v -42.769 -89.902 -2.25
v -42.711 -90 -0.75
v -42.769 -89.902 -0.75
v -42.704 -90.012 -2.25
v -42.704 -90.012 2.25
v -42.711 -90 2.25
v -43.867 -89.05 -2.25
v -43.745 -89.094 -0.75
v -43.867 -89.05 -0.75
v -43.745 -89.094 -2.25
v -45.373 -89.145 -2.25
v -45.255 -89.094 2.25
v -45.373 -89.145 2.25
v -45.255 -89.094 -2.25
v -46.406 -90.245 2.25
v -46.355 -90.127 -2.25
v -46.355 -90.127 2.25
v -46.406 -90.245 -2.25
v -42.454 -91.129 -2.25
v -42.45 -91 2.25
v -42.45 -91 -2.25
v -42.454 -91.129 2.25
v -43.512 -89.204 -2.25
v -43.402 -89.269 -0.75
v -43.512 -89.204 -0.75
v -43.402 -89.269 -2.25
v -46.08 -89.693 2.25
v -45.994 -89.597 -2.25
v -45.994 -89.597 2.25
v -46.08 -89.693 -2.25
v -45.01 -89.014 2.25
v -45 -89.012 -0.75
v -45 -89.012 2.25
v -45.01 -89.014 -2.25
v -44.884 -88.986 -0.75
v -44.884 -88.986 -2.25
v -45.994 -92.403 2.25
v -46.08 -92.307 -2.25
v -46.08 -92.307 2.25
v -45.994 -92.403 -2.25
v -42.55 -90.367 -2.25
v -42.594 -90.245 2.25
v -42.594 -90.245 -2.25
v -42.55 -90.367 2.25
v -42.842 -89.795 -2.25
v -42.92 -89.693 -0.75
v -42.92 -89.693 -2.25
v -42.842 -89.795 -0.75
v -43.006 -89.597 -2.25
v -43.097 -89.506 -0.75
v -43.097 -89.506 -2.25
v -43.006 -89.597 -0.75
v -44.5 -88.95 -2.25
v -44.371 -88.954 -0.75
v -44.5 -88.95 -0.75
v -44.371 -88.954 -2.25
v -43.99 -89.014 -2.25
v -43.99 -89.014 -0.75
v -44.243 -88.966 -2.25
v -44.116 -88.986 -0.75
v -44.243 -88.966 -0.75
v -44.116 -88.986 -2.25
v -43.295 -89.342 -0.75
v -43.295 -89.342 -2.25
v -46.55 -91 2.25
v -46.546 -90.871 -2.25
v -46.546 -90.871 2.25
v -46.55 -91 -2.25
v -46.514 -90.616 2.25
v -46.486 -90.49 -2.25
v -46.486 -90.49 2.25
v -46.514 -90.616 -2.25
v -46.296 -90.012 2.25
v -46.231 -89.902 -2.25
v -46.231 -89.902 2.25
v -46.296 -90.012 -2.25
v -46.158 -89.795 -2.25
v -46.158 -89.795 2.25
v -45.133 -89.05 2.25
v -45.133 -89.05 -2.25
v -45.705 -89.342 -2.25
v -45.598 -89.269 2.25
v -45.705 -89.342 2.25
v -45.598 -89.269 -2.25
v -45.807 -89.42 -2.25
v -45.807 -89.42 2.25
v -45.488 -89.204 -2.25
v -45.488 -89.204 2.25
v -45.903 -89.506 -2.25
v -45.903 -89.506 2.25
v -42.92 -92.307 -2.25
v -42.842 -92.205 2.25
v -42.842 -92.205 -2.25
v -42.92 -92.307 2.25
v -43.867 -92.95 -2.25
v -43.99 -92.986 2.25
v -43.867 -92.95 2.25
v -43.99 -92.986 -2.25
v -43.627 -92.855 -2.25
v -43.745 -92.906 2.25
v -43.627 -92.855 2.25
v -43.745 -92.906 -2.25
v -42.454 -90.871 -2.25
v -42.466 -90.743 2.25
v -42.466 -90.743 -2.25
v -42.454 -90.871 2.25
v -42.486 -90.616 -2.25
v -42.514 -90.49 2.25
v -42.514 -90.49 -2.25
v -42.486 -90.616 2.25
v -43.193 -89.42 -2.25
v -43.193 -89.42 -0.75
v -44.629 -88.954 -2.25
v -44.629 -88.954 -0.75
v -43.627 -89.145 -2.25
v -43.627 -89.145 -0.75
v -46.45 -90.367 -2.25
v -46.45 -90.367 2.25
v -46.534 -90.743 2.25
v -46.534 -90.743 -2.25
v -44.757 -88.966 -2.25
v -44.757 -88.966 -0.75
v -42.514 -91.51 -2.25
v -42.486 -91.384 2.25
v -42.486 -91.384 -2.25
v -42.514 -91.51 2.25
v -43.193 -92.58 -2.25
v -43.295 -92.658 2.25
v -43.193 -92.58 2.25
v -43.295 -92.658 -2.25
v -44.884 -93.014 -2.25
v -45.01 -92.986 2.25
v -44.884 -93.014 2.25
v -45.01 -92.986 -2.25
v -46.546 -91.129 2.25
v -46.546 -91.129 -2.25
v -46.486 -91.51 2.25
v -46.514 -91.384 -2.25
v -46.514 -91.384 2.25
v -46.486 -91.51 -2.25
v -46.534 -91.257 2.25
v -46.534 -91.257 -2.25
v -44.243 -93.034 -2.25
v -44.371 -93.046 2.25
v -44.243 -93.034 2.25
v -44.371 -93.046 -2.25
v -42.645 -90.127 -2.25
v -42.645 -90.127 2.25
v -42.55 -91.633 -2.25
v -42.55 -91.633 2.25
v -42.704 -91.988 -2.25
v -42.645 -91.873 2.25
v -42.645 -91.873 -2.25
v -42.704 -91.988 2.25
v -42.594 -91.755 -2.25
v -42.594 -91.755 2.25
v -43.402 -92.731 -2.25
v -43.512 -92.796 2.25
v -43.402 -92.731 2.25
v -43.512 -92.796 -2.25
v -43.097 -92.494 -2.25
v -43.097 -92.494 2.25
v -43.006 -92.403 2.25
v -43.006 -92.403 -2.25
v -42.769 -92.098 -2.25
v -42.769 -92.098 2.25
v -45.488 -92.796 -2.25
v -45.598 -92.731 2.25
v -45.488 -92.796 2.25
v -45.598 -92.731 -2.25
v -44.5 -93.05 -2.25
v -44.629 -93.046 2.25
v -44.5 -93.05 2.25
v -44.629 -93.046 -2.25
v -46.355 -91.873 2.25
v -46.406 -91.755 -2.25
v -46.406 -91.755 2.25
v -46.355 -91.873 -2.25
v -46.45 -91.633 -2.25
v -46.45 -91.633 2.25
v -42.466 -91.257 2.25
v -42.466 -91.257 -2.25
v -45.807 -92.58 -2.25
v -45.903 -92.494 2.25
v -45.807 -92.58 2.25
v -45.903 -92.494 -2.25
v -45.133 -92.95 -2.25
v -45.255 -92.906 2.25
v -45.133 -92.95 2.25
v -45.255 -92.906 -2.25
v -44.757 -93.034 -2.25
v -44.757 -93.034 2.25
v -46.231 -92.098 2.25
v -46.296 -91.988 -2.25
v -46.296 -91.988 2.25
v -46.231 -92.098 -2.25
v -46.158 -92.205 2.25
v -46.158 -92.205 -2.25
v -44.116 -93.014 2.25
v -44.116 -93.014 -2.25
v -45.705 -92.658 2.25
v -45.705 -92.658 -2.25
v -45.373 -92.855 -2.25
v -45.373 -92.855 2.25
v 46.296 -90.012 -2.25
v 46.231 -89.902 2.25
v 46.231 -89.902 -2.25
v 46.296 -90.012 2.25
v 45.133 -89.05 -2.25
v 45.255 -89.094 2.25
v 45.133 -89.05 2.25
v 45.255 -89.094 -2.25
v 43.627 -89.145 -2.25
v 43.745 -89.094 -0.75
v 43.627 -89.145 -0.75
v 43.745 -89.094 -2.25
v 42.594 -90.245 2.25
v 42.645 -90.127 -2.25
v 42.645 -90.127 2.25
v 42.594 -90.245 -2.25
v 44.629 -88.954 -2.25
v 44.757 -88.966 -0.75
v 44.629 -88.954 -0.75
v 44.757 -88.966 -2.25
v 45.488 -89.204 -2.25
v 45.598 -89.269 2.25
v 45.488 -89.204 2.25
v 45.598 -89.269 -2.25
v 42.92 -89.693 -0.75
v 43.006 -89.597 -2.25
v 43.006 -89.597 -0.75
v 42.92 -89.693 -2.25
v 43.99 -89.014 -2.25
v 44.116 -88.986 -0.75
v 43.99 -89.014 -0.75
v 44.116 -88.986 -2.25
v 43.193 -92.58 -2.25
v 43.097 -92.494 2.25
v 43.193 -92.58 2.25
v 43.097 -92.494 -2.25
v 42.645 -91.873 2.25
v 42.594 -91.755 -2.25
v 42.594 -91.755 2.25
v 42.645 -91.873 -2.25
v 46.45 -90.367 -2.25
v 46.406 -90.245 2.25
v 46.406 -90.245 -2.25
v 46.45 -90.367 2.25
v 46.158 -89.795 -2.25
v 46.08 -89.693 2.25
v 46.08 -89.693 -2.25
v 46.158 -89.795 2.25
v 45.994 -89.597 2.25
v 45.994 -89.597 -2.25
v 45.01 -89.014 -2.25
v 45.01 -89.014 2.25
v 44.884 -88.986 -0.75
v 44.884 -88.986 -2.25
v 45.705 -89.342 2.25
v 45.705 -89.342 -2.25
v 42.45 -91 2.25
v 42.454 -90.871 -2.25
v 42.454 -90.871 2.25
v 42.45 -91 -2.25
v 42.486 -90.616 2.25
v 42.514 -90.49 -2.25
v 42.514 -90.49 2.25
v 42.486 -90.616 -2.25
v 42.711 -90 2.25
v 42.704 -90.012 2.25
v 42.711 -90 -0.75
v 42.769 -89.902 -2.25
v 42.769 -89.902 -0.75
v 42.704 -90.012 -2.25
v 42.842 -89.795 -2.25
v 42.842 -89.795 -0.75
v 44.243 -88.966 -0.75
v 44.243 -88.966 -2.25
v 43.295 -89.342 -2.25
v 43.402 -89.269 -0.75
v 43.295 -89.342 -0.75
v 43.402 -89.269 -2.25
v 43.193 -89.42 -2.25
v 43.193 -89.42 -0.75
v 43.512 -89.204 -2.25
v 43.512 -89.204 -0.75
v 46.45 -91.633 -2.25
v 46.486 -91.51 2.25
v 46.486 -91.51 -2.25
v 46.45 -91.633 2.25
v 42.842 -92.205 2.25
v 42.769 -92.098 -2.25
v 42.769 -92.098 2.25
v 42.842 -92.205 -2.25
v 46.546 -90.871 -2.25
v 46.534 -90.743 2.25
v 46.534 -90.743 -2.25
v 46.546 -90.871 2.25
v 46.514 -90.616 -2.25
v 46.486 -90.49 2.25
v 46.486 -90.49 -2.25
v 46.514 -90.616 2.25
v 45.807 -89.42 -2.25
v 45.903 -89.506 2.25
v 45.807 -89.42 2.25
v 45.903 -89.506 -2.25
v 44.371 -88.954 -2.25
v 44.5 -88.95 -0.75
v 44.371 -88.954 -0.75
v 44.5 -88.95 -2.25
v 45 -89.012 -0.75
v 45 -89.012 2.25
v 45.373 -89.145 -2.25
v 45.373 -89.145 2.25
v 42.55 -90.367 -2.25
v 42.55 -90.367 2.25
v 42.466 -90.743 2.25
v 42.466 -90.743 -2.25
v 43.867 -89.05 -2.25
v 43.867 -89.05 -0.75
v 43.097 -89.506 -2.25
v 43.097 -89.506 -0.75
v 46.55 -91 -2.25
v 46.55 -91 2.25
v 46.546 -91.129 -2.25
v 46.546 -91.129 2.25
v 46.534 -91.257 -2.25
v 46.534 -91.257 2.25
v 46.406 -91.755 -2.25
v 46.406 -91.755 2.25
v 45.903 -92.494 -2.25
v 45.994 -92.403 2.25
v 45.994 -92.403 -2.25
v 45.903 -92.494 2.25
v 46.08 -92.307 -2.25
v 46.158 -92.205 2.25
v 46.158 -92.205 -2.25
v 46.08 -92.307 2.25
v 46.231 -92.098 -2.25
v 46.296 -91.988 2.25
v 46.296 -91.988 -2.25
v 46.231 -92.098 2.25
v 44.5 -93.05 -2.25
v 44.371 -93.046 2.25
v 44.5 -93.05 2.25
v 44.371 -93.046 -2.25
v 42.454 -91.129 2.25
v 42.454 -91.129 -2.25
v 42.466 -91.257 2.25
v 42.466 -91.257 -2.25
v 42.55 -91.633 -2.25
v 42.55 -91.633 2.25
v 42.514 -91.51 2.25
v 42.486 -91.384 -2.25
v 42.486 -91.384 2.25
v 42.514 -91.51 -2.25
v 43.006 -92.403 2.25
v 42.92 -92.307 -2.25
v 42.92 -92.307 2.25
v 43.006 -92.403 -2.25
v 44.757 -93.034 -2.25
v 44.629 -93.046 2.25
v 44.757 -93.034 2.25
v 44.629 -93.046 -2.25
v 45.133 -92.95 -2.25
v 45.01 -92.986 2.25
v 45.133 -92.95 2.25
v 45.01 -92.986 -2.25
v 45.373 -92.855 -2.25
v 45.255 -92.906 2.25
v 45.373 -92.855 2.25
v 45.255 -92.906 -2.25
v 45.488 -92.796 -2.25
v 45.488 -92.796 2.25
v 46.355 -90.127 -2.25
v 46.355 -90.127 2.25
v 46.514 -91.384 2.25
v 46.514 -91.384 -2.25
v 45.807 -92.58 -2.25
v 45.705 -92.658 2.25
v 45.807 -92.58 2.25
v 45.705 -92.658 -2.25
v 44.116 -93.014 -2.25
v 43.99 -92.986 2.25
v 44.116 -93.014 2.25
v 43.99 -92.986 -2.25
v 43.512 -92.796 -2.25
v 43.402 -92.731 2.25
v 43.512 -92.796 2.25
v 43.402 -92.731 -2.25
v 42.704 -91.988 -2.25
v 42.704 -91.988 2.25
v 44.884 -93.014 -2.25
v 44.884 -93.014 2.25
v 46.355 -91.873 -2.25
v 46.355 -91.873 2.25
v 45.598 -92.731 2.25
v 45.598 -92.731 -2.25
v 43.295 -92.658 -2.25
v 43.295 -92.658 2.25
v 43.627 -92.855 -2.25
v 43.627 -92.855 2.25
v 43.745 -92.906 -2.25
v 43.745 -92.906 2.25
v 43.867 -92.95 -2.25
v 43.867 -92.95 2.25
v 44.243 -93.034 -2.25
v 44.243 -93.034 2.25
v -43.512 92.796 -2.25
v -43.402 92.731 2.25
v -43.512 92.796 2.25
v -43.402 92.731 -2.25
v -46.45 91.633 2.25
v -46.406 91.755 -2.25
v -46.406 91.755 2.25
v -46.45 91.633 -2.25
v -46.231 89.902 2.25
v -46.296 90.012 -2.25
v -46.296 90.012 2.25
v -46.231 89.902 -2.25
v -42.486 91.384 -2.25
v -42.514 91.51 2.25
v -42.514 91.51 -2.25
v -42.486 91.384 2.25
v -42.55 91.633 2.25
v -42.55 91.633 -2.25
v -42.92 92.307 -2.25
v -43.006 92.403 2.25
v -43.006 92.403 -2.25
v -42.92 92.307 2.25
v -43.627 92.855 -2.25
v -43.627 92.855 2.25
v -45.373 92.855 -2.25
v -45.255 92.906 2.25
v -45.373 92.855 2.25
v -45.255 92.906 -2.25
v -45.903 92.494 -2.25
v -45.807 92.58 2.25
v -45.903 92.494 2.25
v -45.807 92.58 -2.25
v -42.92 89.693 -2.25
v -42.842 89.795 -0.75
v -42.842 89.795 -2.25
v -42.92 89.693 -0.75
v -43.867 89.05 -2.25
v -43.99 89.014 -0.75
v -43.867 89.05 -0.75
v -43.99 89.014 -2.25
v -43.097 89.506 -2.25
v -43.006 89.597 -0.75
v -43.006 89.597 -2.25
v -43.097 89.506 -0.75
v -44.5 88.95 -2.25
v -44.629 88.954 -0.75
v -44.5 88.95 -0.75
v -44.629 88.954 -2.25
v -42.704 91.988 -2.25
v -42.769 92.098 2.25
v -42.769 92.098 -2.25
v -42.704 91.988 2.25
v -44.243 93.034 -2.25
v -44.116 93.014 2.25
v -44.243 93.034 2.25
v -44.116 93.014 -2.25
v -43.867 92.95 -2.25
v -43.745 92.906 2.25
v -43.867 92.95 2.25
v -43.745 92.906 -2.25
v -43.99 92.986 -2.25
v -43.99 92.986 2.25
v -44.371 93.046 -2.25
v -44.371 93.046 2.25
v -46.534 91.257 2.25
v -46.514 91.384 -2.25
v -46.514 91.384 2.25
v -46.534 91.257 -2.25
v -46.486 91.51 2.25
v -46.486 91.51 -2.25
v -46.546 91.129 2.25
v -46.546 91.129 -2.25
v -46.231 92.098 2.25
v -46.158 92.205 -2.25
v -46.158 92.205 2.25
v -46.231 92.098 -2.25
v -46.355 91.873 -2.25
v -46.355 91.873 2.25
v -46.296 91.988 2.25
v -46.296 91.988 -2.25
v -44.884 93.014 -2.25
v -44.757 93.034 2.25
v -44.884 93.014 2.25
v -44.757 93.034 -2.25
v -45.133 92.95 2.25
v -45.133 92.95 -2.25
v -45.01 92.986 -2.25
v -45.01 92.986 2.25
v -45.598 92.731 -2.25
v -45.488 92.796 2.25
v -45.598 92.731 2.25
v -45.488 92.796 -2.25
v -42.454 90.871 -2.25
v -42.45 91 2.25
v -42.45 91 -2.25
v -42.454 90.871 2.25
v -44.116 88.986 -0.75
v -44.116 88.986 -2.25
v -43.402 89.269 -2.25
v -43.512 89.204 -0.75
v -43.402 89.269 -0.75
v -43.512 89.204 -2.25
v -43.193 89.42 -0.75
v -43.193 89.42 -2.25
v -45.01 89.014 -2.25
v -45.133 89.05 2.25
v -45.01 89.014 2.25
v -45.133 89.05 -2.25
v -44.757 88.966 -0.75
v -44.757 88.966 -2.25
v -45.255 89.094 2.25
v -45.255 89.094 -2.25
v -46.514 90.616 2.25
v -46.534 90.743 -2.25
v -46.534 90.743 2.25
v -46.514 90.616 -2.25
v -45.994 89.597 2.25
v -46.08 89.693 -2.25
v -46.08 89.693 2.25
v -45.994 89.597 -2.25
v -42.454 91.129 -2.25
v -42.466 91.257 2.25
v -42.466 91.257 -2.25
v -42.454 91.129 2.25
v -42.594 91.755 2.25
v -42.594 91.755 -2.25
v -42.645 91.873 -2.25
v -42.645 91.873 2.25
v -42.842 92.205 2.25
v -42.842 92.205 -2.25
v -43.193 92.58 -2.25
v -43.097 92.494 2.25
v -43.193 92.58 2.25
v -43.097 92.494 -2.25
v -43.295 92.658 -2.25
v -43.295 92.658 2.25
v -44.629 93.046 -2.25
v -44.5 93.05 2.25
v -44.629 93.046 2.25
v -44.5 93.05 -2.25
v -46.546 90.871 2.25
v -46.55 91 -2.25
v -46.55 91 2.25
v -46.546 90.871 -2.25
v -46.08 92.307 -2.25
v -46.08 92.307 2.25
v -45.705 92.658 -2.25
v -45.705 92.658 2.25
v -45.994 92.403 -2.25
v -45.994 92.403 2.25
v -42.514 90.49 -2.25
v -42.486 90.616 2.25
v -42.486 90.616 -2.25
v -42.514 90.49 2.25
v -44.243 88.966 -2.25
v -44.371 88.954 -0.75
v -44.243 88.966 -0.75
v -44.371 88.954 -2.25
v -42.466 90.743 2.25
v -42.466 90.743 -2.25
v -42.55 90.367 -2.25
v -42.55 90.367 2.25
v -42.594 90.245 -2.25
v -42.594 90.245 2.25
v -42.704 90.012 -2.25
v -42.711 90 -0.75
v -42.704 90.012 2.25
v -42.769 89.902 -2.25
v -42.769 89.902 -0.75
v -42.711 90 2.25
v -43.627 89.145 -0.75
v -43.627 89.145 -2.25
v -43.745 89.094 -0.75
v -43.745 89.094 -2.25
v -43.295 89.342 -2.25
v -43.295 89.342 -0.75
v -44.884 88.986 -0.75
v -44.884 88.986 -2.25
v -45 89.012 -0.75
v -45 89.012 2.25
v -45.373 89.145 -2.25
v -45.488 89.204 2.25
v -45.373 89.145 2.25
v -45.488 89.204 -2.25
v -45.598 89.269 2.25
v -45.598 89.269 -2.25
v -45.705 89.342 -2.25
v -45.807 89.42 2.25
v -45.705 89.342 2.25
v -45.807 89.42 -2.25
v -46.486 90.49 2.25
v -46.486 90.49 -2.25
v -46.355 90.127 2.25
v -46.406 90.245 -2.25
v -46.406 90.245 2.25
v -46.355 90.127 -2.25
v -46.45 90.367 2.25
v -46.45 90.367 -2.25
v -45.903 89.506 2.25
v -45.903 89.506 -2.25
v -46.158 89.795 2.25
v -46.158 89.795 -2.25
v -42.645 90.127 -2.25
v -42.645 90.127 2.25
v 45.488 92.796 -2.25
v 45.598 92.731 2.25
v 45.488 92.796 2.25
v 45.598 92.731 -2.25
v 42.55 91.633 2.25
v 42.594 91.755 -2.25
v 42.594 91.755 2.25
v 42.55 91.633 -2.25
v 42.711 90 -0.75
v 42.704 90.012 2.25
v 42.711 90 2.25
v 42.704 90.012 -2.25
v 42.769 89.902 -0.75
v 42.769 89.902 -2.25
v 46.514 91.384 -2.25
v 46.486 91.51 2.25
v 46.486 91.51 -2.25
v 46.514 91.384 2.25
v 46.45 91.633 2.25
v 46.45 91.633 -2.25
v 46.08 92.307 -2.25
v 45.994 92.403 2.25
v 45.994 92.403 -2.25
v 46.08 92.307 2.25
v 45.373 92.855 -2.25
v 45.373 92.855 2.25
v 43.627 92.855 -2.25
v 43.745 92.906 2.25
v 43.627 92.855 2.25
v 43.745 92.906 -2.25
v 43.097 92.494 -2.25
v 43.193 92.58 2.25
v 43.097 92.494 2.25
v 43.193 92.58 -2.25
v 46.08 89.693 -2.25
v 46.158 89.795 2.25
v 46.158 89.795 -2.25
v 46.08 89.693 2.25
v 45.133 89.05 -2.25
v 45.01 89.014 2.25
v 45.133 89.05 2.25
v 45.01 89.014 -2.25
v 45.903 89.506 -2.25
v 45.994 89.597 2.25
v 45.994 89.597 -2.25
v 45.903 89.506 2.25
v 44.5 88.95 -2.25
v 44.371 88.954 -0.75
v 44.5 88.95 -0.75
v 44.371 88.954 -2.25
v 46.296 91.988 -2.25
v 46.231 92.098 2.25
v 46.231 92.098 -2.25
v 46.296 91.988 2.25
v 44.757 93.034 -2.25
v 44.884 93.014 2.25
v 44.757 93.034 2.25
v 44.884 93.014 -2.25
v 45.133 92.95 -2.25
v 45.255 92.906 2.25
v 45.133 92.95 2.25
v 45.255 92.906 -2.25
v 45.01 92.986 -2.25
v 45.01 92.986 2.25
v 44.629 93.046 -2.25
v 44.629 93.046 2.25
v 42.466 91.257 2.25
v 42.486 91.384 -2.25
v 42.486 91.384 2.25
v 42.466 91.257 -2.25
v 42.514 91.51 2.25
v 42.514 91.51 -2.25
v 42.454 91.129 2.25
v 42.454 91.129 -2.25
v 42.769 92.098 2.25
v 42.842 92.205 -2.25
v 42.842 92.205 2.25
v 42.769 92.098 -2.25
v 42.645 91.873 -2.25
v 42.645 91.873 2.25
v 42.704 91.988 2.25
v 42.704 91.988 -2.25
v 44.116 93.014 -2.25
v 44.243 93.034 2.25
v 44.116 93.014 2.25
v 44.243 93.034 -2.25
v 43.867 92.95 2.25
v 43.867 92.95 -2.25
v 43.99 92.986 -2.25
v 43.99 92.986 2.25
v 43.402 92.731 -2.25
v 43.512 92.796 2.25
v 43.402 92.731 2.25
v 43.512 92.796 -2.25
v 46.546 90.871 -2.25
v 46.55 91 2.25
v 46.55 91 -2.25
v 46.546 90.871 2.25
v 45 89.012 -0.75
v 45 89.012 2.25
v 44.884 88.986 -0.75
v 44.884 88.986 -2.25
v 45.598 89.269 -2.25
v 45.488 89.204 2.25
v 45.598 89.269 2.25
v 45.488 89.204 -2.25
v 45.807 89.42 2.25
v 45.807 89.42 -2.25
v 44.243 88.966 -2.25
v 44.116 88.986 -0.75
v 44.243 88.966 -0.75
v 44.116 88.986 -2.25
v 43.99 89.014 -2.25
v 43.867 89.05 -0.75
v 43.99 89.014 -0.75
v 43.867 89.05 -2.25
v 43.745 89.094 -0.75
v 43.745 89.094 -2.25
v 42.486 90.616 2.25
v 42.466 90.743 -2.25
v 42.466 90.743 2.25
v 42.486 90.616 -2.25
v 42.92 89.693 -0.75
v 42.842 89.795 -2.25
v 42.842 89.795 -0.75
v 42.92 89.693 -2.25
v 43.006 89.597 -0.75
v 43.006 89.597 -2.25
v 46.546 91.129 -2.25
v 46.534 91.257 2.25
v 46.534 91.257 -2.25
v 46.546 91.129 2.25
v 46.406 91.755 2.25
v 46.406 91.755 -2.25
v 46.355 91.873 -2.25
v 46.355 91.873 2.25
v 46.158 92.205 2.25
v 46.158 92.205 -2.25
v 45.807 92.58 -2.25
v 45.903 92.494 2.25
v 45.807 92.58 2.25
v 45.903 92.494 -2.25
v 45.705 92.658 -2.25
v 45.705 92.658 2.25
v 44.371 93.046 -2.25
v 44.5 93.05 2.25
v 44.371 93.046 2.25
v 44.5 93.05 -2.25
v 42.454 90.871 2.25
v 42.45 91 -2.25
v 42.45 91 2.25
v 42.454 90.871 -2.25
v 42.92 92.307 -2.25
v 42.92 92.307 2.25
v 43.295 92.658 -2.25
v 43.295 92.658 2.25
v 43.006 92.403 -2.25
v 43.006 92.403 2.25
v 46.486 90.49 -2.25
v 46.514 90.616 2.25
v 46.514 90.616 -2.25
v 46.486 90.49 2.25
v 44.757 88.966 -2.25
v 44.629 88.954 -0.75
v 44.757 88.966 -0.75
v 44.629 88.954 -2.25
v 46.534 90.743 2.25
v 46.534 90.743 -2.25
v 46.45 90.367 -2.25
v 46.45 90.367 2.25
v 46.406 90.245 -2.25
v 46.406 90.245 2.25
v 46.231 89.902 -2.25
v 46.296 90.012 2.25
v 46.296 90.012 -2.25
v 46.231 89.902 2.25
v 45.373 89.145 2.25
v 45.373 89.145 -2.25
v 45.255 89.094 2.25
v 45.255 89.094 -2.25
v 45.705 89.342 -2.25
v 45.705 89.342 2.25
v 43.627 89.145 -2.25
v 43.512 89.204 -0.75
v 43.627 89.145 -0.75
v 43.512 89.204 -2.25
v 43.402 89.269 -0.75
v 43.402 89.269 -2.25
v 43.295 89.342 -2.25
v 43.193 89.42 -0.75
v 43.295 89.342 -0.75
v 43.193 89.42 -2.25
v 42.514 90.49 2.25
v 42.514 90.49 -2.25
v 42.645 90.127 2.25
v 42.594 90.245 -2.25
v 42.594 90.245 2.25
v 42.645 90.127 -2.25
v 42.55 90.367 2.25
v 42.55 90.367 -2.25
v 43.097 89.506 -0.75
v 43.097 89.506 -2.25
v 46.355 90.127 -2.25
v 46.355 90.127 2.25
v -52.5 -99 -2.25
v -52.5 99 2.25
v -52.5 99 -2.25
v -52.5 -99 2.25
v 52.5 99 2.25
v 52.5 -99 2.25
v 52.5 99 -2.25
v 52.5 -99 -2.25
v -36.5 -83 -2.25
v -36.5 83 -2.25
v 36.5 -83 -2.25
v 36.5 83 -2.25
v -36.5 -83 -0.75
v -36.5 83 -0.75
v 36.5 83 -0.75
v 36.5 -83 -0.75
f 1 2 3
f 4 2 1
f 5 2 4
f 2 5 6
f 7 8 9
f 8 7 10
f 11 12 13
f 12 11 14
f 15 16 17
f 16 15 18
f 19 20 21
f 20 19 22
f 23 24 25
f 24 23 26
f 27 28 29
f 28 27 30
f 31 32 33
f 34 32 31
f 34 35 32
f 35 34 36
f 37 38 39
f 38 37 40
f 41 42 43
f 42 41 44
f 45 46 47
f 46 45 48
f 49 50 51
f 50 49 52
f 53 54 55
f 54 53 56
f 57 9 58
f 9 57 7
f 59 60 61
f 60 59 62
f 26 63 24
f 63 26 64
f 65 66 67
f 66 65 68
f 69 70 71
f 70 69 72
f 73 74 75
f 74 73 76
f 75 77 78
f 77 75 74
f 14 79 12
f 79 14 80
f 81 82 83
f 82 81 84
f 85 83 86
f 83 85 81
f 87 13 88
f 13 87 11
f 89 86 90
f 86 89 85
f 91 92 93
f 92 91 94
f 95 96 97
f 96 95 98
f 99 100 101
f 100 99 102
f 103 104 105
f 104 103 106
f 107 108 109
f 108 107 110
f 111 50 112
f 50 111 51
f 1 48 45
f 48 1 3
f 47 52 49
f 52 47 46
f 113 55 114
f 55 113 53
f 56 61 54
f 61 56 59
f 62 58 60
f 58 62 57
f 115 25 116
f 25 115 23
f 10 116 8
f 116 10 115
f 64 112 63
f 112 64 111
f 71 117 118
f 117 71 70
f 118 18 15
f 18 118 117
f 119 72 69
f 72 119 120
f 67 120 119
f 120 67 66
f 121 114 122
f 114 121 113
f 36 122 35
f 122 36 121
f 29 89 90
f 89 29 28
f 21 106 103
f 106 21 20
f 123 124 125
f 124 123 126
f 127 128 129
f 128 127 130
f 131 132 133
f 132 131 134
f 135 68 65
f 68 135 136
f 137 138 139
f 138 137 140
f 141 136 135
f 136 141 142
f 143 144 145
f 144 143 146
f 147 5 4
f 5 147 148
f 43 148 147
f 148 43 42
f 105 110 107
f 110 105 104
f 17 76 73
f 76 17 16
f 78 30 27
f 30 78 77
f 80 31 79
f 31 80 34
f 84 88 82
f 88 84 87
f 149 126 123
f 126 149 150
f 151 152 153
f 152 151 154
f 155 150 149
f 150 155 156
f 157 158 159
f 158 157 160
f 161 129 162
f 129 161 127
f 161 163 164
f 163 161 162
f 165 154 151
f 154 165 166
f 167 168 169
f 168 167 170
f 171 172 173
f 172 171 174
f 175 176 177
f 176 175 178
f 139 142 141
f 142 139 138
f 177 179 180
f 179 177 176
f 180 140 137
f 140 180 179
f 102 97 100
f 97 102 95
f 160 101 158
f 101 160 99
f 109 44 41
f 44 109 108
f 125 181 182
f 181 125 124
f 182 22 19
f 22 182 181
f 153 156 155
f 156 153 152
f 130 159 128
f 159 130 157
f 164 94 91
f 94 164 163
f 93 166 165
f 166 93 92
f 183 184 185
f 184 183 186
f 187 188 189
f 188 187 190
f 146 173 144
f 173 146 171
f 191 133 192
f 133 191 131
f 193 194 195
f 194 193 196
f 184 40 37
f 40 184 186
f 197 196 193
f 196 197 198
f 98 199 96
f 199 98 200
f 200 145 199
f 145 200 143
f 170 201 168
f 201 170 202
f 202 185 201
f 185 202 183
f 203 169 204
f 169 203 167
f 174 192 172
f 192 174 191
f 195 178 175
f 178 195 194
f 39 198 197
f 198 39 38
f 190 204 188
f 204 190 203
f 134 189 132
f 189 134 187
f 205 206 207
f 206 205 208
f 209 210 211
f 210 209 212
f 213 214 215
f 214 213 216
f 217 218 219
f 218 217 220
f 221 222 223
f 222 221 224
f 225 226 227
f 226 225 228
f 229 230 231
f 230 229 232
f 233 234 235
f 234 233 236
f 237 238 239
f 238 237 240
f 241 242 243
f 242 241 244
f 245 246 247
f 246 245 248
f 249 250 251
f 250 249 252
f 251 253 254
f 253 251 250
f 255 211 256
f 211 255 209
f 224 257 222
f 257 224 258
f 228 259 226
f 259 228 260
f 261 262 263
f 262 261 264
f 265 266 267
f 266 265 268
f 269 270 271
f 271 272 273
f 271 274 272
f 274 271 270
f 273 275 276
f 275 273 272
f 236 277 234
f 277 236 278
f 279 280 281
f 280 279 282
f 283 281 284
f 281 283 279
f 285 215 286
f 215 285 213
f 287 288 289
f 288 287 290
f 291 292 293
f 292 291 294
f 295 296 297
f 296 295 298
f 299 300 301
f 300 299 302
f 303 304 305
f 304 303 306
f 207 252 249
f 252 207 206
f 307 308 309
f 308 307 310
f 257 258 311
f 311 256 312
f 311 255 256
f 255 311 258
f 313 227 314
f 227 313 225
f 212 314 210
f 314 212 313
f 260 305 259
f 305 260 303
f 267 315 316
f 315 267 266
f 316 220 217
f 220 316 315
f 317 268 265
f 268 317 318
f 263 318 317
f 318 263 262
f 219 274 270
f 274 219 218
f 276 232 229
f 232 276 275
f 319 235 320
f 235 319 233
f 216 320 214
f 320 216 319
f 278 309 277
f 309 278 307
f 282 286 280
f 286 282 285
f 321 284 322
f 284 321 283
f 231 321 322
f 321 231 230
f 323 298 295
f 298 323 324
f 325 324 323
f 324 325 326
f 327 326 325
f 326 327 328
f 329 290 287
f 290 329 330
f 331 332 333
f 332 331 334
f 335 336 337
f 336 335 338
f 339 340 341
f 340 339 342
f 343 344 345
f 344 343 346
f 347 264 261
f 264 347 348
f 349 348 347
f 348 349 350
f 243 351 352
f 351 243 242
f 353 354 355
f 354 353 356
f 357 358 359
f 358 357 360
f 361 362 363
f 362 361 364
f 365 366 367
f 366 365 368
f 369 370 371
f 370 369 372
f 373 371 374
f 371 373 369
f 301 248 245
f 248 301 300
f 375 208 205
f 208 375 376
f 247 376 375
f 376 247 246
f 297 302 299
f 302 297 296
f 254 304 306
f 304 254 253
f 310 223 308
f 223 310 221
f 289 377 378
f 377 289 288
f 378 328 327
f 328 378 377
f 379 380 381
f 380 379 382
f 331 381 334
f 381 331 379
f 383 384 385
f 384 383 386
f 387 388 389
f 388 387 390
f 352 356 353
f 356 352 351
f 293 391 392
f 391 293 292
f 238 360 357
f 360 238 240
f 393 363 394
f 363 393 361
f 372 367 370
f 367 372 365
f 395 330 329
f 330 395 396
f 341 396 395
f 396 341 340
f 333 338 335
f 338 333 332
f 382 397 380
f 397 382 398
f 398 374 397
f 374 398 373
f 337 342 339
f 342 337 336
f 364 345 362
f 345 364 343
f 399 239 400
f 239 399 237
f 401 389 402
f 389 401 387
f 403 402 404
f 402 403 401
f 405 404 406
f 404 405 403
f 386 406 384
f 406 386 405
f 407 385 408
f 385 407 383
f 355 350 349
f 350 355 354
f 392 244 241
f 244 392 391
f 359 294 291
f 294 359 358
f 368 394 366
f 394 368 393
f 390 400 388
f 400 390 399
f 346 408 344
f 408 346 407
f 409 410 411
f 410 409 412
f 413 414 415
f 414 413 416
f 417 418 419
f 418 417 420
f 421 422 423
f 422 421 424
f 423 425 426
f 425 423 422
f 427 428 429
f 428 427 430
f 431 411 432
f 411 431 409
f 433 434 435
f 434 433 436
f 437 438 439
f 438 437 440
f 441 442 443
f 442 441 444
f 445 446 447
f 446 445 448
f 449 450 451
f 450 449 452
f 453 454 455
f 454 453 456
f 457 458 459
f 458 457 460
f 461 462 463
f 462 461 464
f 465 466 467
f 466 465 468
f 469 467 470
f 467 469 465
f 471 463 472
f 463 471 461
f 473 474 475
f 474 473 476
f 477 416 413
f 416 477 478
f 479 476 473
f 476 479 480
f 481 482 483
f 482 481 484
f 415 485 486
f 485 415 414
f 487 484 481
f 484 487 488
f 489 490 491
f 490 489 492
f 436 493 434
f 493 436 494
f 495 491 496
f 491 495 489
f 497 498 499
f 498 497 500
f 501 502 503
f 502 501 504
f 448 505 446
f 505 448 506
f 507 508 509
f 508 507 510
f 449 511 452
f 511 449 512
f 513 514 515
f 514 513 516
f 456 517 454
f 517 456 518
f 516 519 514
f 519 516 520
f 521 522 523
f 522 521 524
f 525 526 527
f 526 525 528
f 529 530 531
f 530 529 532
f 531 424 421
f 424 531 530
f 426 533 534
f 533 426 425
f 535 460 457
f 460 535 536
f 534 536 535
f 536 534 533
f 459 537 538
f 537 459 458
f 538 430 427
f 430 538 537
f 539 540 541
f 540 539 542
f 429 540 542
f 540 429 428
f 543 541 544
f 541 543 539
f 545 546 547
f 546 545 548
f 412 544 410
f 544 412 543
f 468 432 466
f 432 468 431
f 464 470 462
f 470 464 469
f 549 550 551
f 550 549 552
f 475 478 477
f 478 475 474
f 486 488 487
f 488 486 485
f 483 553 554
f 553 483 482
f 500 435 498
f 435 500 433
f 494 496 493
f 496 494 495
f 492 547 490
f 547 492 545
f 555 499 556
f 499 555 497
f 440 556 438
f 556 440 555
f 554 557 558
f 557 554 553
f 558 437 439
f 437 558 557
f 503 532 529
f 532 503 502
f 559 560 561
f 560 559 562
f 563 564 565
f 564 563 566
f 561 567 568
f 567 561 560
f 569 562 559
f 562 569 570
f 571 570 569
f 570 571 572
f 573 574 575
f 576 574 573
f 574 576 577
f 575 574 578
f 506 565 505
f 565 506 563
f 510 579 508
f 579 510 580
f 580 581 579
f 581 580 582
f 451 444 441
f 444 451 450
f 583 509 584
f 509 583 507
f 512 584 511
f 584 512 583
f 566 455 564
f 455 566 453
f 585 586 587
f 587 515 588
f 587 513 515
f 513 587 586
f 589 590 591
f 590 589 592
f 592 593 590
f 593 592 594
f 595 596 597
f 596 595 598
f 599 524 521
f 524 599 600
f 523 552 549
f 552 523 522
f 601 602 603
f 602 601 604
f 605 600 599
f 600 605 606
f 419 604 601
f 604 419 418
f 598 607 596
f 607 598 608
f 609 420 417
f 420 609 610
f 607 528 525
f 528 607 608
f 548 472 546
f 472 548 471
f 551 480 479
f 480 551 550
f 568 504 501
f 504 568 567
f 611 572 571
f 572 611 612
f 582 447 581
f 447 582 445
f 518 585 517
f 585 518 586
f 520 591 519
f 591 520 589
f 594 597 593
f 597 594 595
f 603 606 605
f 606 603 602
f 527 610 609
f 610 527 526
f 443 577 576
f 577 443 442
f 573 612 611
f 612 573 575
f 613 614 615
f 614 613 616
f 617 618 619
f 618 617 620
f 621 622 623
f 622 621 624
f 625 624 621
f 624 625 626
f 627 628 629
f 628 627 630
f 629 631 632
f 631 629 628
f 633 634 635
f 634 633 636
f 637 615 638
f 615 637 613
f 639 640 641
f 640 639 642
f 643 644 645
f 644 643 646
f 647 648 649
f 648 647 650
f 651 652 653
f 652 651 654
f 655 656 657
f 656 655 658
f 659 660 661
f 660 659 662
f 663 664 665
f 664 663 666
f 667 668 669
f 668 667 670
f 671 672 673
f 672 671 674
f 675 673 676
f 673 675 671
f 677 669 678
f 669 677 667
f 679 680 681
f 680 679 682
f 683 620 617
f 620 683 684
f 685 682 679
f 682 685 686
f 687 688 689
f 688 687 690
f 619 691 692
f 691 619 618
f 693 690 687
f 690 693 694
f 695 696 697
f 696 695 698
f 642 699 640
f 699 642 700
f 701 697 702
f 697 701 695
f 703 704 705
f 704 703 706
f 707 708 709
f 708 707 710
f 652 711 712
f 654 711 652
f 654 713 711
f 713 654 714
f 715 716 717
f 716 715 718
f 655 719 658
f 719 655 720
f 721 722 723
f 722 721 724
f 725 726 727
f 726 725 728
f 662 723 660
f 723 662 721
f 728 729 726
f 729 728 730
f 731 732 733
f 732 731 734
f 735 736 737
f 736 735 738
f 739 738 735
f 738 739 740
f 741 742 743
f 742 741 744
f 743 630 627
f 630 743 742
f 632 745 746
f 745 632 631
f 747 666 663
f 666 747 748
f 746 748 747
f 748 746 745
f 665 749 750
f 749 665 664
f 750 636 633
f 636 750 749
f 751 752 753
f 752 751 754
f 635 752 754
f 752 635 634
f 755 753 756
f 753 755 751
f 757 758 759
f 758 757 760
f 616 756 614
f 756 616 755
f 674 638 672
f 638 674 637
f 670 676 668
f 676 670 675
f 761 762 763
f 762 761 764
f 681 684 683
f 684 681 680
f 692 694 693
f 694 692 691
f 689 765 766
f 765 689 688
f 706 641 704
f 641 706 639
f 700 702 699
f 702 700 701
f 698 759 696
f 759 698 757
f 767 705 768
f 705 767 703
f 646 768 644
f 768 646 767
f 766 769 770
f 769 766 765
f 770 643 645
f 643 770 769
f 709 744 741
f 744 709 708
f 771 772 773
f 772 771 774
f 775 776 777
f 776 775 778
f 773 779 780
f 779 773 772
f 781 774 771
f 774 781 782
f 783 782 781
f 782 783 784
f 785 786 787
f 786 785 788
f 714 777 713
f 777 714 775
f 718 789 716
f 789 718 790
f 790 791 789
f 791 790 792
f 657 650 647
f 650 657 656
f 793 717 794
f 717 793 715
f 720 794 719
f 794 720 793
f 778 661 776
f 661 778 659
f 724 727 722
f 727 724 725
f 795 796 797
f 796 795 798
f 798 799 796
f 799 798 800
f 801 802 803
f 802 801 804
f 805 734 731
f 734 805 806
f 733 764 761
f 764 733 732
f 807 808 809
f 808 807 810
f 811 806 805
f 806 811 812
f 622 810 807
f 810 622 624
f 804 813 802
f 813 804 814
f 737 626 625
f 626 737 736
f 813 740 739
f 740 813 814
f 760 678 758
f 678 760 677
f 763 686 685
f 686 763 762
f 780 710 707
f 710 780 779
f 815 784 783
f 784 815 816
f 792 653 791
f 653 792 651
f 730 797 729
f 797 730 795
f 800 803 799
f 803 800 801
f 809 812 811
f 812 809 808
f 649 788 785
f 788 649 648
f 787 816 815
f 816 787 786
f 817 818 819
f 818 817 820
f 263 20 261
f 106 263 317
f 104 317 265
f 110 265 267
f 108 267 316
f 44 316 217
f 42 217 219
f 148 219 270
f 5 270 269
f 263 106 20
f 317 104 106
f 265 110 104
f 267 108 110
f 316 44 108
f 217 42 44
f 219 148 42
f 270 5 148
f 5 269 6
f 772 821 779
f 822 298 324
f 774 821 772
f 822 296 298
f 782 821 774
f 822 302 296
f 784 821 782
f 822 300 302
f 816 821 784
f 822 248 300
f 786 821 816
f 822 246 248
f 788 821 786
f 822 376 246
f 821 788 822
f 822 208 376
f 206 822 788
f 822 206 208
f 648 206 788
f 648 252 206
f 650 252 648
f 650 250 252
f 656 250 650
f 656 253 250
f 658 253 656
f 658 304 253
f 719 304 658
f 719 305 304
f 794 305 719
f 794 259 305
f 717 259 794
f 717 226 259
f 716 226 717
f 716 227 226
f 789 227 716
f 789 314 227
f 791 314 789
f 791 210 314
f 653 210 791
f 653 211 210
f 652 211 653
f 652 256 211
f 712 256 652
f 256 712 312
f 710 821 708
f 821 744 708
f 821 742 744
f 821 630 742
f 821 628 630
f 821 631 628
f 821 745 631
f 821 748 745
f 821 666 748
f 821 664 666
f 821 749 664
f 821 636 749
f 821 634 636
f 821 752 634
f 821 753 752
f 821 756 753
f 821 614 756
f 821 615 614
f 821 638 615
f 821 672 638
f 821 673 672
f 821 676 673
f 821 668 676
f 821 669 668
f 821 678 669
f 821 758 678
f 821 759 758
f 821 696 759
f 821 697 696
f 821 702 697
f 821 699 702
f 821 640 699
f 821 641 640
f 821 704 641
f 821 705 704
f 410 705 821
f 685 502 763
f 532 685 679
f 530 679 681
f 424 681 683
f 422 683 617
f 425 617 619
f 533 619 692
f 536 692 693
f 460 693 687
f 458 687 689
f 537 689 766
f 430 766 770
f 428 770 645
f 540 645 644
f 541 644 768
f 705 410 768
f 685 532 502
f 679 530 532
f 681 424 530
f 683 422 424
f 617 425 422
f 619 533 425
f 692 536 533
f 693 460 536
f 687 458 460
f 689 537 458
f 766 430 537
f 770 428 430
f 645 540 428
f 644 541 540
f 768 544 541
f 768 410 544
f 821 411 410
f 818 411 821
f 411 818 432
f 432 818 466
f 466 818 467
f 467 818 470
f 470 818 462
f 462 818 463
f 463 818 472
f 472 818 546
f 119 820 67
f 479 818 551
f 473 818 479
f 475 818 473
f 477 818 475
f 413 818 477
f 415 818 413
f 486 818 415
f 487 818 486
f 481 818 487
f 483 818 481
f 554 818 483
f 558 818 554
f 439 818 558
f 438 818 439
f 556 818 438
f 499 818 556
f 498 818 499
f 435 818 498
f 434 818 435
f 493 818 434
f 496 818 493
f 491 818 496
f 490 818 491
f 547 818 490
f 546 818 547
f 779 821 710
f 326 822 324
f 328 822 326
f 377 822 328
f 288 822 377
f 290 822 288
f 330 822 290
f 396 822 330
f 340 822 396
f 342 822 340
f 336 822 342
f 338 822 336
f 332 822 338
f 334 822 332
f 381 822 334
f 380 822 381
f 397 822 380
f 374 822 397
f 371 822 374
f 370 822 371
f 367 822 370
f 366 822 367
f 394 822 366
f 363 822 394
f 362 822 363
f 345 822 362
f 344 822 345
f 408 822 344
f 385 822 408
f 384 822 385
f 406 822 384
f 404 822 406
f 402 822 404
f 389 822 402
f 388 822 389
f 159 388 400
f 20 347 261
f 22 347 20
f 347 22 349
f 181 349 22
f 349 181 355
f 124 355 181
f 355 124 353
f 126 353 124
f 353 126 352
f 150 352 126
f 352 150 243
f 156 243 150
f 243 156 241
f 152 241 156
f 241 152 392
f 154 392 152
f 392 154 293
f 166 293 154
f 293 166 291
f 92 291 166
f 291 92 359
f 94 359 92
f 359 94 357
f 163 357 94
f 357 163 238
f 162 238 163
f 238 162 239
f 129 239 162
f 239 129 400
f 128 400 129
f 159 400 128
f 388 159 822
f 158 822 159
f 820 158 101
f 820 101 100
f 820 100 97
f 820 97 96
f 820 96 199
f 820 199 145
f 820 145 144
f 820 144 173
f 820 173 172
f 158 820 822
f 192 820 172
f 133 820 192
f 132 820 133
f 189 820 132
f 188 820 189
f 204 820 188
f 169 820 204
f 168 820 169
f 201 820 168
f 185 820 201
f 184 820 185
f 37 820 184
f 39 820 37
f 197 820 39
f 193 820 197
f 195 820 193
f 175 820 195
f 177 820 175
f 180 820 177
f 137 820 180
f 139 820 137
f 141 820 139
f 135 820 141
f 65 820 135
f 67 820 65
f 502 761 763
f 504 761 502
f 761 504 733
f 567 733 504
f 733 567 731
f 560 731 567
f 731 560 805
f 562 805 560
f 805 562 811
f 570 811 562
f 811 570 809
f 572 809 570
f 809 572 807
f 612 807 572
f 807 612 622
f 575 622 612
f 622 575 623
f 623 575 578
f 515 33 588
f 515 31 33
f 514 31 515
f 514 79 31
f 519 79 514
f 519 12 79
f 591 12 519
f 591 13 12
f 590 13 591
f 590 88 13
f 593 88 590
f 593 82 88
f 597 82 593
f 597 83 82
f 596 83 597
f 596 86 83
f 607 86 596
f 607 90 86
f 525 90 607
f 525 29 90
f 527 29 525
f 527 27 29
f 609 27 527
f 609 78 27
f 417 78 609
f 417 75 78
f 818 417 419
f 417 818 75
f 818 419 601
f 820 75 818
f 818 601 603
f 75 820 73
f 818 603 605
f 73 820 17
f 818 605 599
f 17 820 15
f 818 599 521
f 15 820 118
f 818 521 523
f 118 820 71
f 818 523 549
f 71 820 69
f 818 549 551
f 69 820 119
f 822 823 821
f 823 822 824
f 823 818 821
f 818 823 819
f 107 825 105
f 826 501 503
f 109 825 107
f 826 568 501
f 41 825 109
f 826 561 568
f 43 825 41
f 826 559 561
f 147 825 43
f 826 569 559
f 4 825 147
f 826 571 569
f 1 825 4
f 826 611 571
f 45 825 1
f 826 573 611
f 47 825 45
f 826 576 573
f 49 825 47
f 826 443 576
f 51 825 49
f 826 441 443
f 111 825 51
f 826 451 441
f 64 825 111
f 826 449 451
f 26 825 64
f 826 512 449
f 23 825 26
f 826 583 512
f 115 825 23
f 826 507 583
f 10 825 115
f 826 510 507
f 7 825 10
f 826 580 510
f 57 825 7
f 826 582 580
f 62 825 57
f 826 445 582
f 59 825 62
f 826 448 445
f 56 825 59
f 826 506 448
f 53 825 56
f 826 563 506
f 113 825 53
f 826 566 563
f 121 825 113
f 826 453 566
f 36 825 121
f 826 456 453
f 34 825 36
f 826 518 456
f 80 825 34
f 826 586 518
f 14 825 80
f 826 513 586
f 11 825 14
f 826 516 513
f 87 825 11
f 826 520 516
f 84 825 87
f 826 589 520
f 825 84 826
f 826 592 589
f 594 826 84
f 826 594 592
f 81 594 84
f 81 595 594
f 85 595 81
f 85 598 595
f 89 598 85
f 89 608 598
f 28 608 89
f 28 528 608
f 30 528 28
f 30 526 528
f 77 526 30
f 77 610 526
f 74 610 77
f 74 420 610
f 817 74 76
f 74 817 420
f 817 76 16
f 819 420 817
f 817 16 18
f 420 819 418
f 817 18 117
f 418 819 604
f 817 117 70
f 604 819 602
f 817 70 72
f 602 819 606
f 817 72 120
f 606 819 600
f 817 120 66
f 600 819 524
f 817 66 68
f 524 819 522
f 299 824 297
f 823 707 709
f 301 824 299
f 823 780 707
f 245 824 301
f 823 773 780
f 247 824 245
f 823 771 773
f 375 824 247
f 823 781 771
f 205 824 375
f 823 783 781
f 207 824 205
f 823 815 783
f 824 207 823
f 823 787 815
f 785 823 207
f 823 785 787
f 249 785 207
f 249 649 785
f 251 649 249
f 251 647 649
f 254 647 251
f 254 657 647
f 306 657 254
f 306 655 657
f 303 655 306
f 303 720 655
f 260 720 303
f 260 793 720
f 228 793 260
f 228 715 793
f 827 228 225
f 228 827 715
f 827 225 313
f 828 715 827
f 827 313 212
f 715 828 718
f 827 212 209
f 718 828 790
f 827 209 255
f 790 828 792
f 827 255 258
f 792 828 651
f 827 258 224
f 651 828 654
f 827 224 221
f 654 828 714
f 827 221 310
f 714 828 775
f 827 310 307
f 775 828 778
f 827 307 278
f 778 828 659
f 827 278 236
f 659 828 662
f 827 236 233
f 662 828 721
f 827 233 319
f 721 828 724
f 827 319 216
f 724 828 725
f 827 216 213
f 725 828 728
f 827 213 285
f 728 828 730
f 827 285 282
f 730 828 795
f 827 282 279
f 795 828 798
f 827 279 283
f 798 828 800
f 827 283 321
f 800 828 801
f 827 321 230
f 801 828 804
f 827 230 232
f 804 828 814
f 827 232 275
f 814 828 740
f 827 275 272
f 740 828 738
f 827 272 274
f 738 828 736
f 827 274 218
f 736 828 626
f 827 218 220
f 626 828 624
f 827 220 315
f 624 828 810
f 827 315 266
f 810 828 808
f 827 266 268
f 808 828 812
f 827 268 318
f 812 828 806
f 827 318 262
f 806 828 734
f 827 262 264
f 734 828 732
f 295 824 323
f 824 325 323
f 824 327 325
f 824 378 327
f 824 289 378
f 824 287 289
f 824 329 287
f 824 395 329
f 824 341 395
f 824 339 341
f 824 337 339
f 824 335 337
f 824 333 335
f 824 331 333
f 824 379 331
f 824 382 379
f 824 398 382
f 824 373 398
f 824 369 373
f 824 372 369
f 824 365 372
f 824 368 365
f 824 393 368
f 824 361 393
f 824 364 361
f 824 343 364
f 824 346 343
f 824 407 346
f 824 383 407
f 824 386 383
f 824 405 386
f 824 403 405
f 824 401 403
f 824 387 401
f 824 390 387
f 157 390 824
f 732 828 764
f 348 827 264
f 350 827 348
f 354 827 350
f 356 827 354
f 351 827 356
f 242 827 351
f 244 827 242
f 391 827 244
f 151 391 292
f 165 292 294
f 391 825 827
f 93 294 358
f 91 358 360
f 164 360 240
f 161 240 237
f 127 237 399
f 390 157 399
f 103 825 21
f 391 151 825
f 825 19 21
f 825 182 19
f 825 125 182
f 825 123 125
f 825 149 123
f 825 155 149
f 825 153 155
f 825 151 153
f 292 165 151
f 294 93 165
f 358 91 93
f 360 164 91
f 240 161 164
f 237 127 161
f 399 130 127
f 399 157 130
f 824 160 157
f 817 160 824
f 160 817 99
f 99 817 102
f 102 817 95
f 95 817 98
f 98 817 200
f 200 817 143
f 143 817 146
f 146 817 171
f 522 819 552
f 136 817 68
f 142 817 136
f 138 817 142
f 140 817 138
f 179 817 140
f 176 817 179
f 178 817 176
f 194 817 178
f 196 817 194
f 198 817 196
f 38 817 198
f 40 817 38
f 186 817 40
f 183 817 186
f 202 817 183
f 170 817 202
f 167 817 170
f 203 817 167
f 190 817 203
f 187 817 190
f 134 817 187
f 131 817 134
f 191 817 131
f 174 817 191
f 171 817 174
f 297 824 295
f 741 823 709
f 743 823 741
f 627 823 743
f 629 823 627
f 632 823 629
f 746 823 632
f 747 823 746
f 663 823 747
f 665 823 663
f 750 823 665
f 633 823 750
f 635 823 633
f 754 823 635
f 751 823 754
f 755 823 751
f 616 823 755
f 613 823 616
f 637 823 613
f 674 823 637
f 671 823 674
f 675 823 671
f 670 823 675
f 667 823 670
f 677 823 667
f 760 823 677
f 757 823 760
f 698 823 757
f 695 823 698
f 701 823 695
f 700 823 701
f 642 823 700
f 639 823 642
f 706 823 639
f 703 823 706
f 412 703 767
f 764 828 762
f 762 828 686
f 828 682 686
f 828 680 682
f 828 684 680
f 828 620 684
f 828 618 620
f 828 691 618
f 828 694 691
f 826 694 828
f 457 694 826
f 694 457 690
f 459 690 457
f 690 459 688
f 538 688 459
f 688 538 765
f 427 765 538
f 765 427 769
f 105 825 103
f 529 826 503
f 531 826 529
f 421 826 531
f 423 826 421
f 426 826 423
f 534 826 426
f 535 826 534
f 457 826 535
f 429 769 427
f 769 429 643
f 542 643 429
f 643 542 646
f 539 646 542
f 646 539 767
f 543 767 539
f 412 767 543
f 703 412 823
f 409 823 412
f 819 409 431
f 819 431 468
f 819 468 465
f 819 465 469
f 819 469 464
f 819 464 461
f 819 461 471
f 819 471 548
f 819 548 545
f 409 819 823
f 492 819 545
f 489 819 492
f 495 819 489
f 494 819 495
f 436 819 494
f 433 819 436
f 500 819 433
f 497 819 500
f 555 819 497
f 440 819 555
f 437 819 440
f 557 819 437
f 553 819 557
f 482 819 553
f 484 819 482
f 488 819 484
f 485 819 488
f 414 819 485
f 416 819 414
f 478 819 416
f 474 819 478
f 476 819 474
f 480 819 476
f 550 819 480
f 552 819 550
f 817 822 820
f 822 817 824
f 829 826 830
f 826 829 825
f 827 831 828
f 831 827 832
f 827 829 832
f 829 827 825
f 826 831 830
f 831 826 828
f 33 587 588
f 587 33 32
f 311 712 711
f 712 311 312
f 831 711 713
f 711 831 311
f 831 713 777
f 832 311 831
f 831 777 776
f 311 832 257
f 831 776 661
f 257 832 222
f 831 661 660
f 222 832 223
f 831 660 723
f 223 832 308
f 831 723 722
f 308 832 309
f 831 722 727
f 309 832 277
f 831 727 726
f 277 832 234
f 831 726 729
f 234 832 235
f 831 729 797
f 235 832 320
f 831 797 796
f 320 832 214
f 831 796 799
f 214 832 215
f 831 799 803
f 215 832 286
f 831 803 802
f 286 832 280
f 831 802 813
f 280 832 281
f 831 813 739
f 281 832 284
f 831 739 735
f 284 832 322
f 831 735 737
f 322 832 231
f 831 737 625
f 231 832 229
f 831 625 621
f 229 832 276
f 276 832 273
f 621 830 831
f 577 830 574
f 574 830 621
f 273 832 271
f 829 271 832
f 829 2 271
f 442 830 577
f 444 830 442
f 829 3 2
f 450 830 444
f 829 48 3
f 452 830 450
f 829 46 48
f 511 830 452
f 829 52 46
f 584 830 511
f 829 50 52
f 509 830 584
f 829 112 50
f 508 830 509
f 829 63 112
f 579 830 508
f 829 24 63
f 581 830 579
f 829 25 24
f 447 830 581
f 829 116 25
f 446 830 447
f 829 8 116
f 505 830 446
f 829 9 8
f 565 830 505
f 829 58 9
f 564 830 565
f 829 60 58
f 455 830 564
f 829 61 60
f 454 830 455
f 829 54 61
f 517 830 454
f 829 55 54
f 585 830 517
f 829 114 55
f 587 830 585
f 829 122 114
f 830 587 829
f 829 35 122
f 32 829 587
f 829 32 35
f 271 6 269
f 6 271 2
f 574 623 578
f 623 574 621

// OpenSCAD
include <BOSL/constants.scad>
use <BOSL/masks.scad>

$fn=100;
//chamfer(chamfer=5, size=[105,198,10]) {
difference(){
    cube([105,198,4.5], center=true);
    cube([73,166,4.5], center=true);
    translate([0,0,1])
        cube([90,180,3.5], center=true);
  
  for(y=[-91,91], x=[-44.5,44.5]){
    translate([x,y,0])
      cylinder(h=12,d=4.1, center=true);
  }
}
/*
difference(){
    cube([105,198,1], center=true);
    cube([73,166,1], center=true);
}
*/


//182, 57.5
